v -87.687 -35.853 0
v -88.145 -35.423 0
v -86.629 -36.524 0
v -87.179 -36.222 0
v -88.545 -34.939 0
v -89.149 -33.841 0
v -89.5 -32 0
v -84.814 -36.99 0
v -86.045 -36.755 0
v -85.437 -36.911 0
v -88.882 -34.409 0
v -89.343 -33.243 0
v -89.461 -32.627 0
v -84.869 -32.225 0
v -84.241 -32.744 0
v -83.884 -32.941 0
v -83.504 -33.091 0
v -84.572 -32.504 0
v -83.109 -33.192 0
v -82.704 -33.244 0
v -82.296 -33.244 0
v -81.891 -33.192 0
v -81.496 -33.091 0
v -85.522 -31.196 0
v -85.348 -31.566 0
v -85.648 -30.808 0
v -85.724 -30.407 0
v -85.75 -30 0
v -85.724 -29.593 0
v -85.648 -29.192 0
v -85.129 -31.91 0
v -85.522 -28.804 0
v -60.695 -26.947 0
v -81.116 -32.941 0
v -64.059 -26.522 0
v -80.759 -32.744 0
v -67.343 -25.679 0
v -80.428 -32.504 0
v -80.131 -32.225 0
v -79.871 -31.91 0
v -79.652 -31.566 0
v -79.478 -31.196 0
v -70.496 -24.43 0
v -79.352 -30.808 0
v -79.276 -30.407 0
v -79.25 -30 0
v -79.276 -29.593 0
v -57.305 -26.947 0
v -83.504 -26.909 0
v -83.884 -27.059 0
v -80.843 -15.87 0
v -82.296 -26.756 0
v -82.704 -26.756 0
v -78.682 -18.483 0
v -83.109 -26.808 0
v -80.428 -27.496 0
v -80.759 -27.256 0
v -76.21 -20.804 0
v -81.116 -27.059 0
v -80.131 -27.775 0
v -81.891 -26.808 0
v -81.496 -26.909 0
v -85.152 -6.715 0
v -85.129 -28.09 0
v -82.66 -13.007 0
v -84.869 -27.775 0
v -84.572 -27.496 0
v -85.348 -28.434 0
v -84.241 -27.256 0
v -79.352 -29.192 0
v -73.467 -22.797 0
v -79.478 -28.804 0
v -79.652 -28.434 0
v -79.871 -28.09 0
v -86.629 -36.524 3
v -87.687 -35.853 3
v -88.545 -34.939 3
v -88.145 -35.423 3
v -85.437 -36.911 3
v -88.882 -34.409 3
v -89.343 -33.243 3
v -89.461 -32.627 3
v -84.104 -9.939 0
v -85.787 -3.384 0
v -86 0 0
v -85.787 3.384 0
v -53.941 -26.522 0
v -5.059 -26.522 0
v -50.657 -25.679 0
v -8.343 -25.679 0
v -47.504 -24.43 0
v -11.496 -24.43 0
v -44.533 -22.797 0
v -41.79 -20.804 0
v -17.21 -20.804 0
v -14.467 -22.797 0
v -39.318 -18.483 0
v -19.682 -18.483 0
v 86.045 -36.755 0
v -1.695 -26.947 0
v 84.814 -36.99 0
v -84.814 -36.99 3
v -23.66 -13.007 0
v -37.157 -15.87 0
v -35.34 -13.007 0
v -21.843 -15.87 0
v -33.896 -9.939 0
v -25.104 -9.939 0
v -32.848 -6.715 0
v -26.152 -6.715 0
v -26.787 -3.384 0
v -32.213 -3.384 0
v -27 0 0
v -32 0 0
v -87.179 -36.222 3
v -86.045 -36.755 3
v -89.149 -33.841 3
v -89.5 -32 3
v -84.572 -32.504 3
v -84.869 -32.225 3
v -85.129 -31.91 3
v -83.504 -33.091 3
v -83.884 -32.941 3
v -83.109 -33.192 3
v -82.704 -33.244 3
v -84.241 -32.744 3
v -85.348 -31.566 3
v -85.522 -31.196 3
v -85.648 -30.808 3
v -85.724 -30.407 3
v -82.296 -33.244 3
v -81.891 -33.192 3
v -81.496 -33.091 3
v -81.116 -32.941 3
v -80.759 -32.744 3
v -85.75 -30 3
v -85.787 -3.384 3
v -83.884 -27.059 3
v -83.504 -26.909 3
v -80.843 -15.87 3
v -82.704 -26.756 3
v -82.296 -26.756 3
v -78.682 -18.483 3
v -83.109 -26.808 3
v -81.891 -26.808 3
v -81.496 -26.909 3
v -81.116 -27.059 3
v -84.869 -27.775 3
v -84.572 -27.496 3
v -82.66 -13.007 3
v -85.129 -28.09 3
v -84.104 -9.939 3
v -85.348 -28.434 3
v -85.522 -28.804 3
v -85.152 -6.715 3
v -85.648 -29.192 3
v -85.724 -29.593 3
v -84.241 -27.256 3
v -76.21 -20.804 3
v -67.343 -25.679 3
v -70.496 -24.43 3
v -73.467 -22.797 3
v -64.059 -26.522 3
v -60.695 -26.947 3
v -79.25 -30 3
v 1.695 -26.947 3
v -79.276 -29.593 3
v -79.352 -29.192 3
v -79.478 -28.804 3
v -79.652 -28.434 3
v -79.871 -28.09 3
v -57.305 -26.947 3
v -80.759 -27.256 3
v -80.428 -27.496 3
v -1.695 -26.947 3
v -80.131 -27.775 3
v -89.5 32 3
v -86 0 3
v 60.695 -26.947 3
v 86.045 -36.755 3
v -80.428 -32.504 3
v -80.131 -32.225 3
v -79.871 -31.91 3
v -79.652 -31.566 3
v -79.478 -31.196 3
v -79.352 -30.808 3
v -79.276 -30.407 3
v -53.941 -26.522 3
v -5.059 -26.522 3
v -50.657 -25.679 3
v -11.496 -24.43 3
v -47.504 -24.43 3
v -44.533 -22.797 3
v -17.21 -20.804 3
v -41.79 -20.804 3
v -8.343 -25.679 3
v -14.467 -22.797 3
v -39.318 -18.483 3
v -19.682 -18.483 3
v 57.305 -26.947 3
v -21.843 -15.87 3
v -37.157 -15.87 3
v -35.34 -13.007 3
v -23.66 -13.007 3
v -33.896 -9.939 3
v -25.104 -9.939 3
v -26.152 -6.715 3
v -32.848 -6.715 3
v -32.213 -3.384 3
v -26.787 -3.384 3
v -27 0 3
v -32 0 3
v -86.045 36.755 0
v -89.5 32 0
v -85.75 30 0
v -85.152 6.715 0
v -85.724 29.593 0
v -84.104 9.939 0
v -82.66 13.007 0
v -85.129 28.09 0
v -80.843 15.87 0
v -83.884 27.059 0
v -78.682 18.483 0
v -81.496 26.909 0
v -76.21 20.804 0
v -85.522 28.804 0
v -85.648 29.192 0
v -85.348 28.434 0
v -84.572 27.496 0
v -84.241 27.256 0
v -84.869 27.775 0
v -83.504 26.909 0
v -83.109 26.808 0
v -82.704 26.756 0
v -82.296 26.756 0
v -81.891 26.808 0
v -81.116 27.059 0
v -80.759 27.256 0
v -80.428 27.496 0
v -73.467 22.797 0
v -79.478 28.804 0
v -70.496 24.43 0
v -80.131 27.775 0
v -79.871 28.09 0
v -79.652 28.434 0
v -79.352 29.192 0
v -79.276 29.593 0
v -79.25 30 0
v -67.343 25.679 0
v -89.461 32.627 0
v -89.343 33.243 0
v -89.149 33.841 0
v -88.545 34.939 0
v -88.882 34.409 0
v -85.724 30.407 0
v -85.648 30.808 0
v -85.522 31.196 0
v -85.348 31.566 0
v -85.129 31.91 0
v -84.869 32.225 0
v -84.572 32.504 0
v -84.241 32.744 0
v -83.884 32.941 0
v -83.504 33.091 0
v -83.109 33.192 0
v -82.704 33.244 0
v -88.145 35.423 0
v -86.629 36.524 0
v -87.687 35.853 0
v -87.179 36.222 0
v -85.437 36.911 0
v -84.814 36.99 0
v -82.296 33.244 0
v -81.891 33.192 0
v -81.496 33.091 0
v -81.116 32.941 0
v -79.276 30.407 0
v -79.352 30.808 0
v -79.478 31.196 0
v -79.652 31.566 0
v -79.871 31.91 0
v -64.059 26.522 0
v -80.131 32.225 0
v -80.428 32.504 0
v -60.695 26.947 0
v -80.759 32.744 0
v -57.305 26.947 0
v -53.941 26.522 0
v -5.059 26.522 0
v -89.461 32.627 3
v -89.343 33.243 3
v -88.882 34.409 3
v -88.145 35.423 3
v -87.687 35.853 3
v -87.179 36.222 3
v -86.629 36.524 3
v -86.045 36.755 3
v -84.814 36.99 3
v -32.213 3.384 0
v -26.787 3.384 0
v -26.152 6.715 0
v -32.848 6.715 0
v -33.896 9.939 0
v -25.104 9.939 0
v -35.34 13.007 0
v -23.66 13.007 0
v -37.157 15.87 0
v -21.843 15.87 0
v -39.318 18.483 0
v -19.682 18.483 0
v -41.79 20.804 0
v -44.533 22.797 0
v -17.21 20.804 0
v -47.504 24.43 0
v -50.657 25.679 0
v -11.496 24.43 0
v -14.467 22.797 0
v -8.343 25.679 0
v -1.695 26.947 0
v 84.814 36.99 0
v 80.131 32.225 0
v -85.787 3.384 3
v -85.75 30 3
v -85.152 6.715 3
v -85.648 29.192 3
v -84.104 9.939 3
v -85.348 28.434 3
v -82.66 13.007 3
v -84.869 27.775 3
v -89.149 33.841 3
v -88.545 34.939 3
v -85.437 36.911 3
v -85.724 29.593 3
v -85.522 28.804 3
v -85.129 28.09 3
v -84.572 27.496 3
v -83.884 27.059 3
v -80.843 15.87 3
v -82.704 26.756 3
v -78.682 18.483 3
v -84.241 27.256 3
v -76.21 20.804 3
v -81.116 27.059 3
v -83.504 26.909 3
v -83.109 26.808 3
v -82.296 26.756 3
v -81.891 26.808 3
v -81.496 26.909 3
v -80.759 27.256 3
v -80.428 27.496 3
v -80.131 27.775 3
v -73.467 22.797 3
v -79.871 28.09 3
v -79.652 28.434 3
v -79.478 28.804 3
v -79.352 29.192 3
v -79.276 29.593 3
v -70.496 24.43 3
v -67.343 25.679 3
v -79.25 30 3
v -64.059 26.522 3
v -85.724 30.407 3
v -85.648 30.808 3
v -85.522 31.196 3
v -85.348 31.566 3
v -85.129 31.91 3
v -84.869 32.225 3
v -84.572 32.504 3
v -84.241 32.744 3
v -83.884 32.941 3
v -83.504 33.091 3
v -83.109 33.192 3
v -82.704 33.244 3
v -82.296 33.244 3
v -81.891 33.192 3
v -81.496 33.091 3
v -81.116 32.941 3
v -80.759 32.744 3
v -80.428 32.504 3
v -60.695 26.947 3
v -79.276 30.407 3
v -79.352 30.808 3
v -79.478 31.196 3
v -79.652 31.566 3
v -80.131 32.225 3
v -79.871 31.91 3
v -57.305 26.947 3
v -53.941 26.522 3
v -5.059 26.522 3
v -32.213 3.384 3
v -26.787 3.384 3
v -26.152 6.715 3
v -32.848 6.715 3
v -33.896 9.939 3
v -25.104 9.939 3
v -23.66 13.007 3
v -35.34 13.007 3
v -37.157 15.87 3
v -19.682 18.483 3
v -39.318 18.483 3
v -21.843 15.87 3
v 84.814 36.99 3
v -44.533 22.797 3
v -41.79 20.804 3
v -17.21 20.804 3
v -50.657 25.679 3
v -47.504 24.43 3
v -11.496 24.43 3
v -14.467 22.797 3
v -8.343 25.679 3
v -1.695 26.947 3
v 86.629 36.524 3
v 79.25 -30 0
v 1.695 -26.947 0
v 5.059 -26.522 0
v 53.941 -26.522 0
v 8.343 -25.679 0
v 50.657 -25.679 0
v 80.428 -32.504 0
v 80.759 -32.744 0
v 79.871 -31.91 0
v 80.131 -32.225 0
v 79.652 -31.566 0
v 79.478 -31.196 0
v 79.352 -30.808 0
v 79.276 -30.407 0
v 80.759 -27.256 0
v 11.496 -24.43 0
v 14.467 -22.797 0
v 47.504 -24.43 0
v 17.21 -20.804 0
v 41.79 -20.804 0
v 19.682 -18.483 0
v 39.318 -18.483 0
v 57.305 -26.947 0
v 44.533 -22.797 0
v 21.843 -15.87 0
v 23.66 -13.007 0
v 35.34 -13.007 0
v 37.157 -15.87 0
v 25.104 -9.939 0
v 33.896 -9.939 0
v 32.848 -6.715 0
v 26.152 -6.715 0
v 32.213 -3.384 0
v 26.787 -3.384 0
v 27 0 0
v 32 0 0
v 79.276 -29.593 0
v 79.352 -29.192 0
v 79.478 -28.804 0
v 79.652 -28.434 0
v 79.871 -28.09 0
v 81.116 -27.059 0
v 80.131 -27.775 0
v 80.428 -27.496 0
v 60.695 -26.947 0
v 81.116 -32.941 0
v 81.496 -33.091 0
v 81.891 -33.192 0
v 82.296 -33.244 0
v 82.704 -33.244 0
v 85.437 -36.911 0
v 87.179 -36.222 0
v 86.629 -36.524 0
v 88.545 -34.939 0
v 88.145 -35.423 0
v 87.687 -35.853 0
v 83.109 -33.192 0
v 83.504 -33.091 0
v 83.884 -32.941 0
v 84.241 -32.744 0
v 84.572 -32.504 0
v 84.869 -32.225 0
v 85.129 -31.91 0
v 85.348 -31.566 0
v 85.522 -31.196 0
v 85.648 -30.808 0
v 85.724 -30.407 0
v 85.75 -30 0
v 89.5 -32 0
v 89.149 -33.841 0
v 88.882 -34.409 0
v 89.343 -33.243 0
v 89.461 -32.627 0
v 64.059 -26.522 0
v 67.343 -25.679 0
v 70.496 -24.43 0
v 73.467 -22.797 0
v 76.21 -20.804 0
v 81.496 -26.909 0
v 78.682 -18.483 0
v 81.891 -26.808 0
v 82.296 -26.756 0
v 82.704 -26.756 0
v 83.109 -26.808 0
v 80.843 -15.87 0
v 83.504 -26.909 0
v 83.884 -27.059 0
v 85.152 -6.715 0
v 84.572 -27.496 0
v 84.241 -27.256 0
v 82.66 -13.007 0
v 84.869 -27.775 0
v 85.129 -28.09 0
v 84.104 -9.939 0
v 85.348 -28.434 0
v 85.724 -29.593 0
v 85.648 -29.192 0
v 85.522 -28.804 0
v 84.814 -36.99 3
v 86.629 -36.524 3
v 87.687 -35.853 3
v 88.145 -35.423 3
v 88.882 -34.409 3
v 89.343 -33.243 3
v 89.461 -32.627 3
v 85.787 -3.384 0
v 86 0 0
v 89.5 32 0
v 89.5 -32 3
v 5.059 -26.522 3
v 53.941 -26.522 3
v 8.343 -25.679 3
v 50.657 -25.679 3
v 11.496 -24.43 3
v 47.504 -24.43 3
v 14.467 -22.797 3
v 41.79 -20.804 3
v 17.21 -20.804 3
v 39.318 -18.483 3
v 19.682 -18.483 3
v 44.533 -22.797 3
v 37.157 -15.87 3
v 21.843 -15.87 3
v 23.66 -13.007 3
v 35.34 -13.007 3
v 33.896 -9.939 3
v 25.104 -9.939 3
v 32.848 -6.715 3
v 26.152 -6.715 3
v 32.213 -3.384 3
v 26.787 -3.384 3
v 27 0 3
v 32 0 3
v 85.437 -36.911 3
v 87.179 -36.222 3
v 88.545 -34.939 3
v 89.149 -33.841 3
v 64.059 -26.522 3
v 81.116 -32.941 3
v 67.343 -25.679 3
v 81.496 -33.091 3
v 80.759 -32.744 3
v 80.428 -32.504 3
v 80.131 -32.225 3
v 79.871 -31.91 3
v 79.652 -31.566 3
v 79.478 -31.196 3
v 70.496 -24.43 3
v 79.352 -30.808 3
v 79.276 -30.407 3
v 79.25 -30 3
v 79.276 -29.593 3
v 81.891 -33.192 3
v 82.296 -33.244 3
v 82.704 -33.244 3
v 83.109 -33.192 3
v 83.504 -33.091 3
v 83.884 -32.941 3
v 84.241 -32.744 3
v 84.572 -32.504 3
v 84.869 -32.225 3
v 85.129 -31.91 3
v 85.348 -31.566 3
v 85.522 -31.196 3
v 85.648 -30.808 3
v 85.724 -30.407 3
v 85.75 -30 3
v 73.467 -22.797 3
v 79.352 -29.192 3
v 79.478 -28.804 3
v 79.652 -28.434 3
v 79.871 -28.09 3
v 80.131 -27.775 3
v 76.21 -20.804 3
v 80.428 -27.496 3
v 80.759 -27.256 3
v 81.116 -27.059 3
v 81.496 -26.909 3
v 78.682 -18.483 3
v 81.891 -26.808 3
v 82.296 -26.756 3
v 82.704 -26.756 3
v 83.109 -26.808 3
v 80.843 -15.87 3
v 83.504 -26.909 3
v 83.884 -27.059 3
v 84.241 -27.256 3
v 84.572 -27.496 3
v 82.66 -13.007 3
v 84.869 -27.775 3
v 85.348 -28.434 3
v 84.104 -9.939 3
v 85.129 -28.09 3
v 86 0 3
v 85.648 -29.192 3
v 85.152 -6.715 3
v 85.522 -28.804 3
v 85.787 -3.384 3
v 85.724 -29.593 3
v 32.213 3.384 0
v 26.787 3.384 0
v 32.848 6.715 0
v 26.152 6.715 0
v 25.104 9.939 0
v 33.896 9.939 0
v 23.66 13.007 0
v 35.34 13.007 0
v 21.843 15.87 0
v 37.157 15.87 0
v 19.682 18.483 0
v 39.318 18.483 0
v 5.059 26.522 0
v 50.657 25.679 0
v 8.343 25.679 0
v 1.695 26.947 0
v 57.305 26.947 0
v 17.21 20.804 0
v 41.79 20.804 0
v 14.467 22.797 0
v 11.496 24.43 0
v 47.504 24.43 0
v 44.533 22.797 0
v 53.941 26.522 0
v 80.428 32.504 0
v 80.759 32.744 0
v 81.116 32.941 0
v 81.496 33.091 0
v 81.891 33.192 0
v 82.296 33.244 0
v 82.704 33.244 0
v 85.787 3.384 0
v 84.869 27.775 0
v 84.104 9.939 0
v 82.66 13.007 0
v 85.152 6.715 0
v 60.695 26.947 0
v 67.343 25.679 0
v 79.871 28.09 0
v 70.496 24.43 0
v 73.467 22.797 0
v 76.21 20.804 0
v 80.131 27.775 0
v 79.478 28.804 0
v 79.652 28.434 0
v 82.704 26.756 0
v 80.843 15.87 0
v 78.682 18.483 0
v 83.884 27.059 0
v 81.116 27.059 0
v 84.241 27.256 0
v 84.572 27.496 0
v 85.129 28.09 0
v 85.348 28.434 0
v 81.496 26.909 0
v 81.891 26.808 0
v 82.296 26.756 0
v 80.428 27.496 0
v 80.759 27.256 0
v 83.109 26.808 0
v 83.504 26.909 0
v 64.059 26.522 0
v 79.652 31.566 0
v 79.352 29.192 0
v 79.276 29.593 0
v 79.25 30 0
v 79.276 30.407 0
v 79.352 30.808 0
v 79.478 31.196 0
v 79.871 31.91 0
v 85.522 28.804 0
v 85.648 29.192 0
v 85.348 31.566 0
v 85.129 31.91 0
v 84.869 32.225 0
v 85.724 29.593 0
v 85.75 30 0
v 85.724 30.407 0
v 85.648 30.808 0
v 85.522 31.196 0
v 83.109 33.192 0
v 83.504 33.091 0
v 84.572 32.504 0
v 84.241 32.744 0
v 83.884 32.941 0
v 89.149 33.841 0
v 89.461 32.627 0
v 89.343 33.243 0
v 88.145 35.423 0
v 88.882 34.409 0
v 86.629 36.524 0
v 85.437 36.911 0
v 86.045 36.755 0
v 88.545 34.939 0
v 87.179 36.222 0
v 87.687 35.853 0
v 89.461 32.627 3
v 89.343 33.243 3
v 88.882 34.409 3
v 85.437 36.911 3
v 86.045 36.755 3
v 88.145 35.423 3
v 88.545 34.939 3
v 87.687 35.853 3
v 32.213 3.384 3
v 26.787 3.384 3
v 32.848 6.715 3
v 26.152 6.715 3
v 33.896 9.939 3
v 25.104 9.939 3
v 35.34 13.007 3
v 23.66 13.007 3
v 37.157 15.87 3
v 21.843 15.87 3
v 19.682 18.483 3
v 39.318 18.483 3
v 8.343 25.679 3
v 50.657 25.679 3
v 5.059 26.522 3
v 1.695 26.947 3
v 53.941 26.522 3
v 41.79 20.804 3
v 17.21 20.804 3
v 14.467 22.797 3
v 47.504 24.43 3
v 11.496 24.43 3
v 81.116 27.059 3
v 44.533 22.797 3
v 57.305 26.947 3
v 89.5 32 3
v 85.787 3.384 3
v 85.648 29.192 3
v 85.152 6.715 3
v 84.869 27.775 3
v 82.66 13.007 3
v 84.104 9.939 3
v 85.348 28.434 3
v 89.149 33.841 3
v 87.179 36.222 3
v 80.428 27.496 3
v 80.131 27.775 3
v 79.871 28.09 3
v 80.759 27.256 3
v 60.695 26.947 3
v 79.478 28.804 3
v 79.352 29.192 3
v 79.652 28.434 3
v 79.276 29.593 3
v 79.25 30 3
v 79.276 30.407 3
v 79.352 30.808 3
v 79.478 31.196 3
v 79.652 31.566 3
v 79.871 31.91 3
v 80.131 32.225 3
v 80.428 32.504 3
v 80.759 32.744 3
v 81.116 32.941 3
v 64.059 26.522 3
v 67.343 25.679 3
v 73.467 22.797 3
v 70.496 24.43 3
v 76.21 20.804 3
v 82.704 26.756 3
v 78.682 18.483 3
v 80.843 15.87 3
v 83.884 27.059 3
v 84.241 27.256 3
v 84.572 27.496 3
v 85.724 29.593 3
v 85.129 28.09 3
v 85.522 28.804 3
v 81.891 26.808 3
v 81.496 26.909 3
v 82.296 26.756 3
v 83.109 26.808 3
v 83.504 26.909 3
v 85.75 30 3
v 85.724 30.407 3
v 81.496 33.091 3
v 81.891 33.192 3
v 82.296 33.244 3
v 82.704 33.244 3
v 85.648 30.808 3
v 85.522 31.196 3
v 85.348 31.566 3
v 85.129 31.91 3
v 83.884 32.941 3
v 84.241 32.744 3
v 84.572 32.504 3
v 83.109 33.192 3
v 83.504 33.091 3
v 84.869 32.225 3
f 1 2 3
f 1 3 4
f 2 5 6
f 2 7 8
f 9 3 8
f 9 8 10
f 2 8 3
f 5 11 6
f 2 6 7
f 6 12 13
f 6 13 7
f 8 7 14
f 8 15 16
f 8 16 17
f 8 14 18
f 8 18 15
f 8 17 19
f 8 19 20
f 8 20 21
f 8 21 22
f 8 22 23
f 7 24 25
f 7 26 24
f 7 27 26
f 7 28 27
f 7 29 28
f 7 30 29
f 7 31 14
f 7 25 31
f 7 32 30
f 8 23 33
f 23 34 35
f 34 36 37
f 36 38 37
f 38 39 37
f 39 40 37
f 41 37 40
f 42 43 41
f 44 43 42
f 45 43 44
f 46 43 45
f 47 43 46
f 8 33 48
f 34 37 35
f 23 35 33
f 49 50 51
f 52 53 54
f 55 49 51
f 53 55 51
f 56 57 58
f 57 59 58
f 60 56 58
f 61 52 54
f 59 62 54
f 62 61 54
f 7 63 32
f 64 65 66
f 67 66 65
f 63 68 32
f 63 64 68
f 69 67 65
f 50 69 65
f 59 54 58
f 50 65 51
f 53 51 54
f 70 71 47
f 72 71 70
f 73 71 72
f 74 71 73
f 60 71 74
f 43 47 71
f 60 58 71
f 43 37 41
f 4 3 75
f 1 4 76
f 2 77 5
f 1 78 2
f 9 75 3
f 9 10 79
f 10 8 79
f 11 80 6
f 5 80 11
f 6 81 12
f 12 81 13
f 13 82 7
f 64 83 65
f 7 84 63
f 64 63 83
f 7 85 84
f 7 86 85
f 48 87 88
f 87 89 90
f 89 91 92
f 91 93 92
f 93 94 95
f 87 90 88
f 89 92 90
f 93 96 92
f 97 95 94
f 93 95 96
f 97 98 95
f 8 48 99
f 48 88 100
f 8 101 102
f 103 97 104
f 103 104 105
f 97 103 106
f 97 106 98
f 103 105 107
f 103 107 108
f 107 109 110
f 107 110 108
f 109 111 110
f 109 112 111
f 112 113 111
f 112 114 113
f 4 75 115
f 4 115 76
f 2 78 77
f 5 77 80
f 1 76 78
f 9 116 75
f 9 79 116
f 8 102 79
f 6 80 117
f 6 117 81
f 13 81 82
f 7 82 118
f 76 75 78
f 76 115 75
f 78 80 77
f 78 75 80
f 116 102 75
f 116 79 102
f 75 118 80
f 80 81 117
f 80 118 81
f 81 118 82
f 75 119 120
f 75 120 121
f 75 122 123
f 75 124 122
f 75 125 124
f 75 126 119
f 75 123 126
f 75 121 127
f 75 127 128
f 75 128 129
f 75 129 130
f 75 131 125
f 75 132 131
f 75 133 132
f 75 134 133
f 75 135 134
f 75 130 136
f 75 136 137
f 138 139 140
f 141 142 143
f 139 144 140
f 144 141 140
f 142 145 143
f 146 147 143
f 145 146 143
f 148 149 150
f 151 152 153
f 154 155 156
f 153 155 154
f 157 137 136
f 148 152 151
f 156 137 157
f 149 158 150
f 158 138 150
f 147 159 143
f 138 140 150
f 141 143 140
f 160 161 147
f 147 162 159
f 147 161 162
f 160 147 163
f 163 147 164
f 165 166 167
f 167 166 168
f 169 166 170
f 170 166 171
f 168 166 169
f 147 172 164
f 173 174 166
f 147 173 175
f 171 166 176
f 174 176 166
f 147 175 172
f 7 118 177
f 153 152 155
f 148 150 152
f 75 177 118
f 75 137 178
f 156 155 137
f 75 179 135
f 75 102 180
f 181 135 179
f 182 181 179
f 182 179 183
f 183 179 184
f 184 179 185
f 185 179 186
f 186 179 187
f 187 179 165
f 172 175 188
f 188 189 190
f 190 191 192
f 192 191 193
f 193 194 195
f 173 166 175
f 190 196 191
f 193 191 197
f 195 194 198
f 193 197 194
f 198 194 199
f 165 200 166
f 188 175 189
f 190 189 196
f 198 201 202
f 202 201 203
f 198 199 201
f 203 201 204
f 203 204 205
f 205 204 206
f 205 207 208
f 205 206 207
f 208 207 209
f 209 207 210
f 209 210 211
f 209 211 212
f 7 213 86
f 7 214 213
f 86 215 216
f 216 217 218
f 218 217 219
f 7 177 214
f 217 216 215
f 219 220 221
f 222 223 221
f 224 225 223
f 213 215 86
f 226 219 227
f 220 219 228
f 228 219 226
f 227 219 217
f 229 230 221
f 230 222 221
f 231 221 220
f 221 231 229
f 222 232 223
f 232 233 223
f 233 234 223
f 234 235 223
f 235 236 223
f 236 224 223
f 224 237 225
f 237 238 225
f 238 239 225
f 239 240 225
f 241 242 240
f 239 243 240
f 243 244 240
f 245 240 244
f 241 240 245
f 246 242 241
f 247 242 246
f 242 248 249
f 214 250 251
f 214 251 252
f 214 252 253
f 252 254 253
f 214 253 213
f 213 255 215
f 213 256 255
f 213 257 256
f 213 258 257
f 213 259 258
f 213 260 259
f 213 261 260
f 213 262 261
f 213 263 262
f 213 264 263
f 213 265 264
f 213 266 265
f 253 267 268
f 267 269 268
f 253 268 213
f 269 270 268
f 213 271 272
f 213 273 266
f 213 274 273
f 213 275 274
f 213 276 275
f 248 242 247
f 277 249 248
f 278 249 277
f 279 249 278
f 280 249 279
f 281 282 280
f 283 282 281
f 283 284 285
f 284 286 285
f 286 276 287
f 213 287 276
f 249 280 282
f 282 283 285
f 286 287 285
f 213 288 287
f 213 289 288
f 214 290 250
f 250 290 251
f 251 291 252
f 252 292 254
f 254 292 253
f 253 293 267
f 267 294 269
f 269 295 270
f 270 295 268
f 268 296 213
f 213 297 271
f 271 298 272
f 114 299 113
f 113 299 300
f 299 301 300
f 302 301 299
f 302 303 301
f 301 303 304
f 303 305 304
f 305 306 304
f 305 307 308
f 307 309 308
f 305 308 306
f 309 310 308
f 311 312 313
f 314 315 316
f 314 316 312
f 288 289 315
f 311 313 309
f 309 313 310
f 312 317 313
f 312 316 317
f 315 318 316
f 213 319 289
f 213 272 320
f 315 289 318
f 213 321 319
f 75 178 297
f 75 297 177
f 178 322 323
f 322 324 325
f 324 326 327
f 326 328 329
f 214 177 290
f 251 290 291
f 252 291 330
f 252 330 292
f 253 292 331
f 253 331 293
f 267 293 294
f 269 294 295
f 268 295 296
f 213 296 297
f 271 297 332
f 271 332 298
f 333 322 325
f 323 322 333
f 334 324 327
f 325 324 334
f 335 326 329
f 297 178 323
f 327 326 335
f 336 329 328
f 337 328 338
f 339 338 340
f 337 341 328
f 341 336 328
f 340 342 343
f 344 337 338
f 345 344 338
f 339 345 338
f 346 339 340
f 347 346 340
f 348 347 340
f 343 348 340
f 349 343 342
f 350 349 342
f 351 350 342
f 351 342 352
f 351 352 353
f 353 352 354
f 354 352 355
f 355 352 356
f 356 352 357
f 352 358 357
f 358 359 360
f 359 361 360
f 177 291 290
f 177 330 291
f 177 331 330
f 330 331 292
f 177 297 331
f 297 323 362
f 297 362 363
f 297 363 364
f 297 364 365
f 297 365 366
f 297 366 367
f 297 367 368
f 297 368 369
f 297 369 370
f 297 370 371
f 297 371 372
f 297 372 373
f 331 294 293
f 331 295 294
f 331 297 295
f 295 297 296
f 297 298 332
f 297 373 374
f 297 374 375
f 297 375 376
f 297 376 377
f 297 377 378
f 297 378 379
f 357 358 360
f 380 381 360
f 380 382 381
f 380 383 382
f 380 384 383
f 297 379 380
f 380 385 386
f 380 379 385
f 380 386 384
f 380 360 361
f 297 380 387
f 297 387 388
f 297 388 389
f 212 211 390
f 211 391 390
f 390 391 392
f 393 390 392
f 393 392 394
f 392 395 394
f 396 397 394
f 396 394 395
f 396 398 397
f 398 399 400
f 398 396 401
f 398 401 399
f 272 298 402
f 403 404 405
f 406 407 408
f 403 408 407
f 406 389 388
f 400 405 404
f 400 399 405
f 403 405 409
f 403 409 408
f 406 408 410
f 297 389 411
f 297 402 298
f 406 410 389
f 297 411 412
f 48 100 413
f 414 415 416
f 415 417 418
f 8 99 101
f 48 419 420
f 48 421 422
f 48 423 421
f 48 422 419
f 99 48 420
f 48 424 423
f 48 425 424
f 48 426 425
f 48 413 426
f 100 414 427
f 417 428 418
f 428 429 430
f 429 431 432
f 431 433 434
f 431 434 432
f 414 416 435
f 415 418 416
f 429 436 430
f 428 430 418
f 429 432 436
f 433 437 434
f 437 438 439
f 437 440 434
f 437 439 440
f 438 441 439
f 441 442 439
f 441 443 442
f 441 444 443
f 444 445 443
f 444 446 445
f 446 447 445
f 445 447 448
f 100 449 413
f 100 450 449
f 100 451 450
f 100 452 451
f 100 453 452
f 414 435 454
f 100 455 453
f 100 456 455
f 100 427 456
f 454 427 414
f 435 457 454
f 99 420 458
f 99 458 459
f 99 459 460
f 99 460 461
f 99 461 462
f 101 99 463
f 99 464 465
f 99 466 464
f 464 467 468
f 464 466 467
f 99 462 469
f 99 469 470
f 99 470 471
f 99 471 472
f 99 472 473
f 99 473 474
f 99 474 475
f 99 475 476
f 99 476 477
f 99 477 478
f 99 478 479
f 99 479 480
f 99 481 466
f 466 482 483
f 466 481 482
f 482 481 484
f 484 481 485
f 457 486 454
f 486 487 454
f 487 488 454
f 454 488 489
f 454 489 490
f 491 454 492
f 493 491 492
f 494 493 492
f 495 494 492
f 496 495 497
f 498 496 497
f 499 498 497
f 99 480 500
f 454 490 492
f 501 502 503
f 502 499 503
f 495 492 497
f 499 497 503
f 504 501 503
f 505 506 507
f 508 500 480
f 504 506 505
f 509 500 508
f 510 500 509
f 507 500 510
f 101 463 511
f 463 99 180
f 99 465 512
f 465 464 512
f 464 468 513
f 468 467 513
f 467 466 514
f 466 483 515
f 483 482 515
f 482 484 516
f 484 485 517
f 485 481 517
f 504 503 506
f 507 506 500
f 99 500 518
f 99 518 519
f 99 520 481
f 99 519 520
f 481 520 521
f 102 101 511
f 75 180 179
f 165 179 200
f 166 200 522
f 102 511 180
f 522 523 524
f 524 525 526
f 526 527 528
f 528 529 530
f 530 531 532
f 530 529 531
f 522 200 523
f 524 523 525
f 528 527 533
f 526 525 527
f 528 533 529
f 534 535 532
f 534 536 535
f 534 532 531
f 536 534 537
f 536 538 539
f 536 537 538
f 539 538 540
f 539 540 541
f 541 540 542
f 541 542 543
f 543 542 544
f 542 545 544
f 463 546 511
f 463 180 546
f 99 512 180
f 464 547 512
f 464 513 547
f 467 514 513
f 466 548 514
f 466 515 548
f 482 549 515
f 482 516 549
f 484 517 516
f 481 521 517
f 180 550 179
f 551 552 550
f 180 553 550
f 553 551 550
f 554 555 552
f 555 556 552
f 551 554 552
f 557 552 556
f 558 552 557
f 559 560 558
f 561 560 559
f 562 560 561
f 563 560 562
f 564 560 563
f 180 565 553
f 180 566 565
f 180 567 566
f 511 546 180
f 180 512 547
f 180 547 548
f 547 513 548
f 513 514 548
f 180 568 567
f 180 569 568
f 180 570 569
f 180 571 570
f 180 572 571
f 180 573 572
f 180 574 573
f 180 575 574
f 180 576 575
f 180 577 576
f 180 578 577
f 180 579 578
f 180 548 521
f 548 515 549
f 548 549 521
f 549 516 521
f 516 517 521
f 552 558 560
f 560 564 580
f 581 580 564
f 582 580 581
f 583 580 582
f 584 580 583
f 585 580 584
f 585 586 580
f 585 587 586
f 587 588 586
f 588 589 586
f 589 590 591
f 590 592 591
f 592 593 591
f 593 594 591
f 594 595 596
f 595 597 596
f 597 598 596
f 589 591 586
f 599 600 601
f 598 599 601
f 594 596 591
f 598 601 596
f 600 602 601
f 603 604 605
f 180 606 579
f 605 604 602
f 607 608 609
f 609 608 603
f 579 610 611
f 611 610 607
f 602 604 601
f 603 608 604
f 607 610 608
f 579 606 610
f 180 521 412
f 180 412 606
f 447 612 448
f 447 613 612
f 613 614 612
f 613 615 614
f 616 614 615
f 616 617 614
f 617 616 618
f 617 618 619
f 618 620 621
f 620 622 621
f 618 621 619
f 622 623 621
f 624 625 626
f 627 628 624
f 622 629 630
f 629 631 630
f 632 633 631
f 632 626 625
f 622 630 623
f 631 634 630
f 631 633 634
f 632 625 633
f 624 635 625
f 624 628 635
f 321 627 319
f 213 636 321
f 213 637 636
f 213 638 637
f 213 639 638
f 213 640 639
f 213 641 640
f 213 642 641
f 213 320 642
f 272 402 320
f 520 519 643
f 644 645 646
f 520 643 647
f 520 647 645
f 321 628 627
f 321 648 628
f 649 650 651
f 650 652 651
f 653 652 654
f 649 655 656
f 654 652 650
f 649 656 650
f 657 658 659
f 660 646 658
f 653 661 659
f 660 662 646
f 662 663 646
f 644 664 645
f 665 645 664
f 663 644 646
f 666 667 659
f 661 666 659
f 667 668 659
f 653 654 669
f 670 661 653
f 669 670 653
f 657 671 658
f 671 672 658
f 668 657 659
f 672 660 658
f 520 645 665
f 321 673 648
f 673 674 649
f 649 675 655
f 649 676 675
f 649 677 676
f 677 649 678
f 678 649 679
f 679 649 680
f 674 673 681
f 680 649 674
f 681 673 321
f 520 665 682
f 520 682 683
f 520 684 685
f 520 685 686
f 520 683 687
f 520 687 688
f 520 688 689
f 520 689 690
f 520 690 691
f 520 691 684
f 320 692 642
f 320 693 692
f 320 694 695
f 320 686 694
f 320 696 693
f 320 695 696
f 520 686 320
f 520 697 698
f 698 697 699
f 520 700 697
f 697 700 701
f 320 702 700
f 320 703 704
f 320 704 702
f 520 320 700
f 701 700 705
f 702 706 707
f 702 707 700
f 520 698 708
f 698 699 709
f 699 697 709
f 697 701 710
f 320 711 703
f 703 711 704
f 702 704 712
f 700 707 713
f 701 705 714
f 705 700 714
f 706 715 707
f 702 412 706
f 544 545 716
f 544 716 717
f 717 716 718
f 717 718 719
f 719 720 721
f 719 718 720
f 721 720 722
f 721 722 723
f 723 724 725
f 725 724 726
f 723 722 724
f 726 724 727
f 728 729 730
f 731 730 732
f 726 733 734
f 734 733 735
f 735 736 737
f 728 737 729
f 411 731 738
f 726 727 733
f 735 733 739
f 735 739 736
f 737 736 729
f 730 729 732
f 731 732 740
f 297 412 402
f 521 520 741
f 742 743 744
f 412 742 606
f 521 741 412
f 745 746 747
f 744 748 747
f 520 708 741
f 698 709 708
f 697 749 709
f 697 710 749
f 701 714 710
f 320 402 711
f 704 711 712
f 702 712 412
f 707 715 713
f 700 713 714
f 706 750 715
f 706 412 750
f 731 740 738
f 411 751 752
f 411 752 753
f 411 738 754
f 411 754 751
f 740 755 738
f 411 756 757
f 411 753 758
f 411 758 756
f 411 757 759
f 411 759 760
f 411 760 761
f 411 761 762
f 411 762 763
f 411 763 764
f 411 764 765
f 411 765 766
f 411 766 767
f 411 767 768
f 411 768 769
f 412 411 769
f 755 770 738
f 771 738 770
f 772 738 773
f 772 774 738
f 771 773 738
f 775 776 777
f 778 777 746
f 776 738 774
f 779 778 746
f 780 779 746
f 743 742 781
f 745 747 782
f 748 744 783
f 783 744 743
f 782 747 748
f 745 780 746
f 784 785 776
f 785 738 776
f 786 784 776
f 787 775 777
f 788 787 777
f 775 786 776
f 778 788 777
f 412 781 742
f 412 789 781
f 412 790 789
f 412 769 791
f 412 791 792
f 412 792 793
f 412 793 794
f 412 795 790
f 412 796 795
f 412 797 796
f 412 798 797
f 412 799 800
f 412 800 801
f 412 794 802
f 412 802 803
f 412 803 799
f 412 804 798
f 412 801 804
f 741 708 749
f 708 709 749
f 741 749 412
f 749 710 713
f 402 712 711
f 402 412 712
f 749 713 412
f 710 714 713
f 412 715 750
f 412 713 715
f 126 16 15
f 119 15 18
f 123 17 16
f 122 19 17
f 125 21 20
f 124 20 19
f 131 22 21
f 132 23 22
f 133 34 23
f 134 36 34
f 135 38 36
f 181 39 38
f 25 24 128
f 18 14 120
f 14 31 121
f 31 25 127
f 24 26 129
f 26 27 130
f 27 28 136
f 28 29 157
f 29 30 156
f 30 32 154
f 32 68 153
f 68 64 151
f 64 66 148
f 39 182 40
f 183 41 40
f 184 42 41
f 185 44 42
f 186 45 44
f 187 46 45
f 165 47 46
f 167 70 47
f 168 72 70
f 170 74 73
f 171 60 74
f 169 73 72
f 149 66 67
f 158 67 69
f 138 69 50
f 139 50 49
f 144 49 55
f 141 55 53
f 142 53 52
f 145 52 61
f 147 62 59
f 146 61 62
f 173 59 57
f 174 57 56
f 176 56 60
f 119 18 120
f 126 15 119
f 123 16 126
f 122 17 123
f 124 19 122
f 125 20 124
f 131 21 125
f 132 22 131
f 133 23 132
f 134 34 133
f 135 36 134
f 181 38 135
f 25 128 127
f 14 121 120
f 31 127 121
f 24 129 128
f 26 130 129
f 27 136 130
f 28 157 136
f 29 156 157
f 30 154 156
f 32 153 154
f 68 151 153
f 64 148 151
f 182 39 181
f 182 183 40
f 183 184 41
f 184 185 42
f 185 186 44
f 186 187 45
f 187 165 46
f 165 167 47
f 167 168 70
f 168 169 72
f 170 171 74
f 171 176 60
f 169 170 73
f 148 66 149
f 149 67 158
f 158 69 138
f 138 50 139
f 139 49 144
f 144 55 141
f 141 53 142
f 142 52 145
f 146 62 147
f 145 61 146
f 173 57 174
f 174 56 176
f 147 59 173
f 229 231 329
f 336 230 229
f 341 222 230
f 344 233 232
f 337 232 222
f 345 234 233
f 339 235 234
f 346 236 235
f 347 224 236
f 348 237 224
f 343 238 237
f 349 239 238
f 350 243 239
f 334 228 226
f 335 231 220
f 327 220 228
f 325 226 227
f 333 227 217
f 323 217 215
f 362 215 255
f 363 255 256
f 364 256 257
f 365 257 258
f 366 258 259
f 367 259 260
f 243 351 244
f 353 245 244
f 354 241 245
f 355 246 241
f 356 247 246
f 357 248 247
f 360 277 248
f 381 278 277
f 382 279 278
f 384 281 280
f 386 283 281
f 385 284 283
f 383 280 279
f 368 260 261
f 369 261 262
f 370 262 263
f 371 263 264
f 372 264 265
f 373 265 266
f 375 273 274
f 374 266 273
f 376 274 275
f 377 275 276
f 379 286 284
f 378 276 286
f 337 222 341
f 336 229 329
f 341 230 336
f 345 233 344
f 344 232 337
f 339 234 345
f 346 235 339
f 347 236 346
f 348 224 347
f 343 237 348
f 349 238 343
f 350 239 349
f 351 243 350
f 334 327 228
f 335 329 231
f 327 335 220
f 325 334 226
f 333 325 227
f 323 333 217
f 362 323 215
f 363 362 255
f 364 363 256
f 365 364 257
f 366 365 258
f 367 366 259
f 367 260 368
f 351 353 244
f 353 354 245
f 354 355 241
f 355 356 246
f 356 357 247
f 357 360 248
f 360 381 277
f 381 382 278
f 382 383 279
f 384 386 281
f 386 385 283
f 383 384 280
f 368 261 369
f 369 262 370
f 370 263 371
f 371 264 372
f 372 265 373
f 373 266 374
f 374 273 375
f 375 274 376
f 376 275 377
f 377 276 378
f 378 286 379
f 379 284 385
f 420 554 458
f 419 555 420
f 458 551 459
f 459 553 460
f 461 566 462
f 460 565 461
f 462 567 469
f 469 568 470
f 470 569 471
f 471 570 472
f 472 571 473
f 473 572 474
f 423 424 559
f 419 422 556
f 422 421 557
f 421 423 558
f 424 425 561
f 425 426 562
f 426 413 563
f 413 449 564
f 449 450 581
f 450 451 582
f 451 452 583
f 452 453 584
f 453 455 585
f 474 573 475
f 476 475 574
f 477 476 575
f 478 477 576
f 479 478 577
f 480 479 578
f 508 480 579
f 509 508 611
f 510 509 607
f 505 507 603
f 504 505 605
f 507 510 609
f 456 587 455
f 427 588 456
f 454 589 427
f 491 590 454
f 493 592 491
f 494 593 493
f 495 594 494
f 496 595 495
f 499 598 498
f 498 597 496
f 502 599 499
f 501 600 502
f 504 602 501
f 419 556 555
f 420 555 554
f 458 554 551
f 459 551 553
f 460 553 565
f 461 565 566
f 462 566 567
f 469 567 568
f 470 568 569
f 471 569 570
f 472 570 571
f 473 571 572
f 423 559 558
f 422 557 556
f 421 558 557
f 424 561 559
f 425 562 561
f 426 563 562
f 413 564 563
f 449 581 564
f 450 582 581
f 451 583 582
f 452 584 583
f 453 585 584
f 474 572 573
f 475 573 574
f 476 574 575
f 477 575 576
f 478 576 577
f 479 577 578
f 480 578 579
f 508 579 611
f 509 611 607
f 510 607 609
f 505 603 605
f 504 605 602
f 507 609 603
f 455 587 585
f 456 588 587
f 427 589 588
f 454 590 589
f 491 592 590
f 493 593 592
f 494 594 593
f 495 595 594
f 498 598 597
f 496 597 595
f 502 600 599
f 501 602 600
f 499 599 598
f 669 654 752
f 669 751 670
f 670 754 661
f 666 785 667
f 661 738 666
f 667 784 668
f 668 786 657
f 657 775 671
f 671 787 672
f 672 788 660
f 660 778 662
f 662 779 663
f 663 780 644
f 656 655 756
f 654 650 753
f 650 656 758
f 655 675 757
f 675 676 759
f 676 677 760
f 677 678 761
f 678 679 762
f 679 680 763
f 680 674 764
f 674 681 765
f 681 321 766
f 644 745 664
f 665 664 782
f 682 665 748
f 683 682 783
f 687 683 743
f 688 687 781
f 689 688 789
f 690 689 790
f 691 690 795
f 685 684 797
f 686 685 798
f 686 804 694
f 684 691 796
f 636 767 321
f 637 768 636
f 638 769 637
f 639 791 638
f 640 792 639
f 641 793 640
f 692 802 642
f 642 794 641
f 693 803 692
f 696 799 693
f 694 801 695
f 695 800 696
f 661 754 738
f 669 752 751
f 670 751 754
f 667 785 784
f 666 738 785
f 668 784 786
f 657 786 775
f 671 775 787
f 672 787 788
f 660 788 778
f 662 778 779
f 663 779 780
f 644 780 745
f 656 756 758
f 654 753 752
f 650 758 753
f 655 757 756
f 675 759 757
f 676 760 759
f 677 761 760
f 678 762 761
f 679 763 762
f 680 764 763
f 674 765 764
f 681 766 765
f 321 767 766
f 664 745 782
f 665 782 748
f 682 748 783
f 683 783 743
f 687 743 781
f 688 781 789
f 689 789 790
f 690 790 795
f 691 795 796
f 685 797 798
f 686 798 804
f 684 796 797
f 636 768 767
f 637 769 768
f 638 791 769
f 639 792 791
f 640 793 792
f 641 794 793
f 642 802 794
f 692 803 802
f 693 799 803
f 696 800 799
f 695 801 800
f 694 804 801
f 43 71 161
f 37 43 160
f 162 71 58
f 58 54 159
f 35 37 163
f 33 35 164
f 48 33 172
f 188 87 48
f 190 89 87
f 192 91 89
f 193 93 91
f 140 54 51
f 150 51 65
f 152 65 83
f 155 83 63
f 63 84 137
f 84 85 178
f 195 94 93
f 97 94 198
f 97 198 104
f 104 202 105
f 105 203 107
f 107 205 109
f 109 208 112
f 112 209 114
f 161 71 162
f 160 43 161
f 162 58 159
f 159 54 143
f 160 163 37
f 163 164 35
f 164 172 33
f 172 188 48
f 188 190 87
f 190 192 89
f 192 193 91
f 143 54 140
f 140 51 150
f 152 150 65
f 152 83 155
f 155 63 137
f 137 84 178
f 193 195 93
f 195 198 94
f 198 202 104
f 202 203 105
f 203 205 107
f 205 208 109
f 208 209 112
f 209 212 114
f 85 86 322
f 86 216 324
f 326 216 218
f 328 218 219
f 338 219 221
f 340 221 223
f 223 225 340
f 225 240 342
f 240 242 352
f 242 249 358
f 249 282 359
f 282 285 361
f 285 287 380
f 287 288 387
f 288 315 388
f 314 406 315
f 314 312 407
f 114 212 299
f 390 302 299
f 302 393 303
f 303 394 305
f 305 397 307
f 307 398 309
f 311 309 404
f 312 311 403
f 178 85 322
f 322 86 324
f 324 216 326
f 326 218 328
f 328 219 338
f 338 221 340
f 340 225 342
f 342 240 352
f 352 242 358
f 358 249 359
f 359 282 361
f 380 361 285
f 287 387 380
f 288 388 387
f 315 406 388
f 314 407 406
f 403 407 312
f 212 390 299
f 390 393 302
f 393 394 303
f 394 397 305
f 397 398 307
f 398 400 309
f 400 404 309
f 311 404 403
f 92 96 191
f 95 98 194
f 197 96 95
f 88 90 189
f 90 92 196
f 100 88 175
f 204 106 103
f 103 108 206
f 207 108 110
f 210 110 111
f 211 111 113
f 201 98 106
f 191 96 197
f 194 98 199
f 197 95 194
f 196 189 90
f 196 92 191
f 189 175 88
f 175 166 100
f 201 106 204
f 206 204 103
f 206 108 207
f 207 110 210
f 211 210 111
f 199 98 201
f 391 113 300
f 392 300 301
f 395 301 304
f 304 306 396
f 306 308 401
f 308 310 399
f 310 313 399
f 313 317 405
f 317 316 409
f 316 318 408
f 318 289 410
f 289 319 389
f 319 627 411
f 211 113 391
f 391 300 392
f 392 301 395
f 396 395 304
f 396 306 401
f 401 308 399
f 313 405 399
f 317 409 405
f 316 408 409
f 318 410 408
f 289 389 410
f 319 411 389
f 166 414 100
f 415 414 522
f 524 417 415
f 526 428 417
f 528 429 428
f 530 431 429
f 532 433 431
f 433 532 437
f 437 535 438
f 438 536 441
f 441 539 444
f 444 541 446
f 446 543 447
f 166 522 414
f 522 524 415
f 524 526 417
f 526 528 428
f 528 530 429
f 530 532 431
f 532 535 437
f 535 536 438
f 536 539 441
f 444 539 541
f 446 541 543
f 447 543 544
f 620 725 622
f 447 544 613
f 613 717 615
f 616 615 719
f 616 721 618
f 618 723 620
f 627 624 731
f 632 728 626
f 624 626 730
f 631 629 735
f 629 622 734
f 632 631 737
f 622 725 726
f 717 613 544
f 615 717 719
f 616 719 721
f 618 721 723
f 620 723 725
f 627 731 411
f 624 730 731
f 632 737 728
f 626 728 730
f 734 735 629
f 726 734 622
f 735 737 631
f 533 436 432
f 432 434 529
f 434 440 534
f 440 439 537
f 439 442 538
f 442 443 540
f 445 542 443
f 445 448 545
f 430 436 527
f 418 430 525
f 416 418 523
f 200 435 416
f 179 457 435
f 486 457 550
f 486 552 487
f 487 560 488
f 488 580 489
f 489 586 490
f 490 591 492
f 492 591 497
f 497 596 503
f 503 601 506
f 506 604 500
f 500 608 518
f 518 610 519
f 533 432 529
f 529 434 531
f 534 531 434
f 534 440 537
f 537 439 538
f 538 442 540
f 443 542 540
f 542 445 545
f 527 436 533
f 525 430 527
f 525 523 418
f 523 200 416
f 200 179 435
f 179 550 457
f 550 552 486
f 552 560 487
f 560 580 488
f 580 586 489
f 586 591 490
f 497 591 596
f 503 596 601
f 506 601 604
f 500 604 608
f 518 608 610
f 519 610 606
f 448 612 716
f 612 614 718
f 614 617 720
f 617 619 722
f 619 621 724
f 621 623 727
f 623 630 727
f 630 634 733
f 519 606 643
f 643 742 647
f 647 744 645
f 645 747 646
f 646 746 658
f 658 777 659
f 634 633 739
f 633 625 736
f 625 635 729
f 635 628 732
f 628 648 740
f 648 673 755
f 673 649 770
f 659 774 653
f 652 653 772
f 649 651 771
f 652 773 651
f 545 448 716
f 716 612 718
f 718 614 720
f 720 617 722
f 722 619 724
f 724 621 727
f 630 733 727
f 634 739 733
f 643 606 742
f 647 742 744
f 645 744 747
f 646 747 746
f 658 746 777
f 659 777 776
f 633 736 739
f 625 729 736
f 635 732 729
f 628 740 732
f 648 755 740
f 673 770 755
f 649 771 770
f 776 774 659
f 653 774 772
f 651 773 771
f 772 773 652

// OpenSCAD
$fn = 50;

difference() {
	union() {
		hull() {
			translate(v = [-84.5, 32.0, 0]) {
				cylinder(h = 3, r = 5);
			}
			translate(v = [84.5, 32.0, 0]) {
				cylinder(h = 3, r = 5);
			}
			translate(v = [-84.5, -32.0, 0]) {
				cylinder(h = 3, r = 5);
			}
			translate(v = [84.5, -32.0, 0]) {
				cylinder(h = 3, r = 5);
			}
		}
	}
	union() {
		translate(v = [-82.5, -30.0, -100.0]) {
			cylinder(h = 200, r = 3.25);
		}
		translate(v = [-82.5, 30.0, -100.0]) {
			cylinder(h = 200, r = 3.25);
		}
		translate(v = [82.5, -30.0, -100.0]) {
			cylinder(h = 200, r = 3.25);
		}
		translate(v = [82.5, 30.0, -100.0]) {
			cylinder(h = 200, r = 3.25);
		}
		translate(v = [-82.5, -30.0, -100.0]) {
			cylinder(h = 200, r = 1.8);
		}
		translate(v = [-82.5, 30.0, -100.0]) {
			cylinder(h = 200, r = 1.8);
		}
		translate(v = [82.5, -30.0, -100.0]) {
			cylinder(h = 200, r = 1.8);
		}
		translate(v = [82.5, 30.0, -100.0]) {
			cylinder(h = 200, r = 1.8);
		}
		translate(v = [-59.0, 0, 0.0]) {
			cylinder(h = 3, r = 27.0);
		}
		cylinder(h = 3, r = 27.0);
		translate(v = [59.0, 0, 0.0]) {
			cylinder(h = 3, r = 27.0);
		}
	}
}
